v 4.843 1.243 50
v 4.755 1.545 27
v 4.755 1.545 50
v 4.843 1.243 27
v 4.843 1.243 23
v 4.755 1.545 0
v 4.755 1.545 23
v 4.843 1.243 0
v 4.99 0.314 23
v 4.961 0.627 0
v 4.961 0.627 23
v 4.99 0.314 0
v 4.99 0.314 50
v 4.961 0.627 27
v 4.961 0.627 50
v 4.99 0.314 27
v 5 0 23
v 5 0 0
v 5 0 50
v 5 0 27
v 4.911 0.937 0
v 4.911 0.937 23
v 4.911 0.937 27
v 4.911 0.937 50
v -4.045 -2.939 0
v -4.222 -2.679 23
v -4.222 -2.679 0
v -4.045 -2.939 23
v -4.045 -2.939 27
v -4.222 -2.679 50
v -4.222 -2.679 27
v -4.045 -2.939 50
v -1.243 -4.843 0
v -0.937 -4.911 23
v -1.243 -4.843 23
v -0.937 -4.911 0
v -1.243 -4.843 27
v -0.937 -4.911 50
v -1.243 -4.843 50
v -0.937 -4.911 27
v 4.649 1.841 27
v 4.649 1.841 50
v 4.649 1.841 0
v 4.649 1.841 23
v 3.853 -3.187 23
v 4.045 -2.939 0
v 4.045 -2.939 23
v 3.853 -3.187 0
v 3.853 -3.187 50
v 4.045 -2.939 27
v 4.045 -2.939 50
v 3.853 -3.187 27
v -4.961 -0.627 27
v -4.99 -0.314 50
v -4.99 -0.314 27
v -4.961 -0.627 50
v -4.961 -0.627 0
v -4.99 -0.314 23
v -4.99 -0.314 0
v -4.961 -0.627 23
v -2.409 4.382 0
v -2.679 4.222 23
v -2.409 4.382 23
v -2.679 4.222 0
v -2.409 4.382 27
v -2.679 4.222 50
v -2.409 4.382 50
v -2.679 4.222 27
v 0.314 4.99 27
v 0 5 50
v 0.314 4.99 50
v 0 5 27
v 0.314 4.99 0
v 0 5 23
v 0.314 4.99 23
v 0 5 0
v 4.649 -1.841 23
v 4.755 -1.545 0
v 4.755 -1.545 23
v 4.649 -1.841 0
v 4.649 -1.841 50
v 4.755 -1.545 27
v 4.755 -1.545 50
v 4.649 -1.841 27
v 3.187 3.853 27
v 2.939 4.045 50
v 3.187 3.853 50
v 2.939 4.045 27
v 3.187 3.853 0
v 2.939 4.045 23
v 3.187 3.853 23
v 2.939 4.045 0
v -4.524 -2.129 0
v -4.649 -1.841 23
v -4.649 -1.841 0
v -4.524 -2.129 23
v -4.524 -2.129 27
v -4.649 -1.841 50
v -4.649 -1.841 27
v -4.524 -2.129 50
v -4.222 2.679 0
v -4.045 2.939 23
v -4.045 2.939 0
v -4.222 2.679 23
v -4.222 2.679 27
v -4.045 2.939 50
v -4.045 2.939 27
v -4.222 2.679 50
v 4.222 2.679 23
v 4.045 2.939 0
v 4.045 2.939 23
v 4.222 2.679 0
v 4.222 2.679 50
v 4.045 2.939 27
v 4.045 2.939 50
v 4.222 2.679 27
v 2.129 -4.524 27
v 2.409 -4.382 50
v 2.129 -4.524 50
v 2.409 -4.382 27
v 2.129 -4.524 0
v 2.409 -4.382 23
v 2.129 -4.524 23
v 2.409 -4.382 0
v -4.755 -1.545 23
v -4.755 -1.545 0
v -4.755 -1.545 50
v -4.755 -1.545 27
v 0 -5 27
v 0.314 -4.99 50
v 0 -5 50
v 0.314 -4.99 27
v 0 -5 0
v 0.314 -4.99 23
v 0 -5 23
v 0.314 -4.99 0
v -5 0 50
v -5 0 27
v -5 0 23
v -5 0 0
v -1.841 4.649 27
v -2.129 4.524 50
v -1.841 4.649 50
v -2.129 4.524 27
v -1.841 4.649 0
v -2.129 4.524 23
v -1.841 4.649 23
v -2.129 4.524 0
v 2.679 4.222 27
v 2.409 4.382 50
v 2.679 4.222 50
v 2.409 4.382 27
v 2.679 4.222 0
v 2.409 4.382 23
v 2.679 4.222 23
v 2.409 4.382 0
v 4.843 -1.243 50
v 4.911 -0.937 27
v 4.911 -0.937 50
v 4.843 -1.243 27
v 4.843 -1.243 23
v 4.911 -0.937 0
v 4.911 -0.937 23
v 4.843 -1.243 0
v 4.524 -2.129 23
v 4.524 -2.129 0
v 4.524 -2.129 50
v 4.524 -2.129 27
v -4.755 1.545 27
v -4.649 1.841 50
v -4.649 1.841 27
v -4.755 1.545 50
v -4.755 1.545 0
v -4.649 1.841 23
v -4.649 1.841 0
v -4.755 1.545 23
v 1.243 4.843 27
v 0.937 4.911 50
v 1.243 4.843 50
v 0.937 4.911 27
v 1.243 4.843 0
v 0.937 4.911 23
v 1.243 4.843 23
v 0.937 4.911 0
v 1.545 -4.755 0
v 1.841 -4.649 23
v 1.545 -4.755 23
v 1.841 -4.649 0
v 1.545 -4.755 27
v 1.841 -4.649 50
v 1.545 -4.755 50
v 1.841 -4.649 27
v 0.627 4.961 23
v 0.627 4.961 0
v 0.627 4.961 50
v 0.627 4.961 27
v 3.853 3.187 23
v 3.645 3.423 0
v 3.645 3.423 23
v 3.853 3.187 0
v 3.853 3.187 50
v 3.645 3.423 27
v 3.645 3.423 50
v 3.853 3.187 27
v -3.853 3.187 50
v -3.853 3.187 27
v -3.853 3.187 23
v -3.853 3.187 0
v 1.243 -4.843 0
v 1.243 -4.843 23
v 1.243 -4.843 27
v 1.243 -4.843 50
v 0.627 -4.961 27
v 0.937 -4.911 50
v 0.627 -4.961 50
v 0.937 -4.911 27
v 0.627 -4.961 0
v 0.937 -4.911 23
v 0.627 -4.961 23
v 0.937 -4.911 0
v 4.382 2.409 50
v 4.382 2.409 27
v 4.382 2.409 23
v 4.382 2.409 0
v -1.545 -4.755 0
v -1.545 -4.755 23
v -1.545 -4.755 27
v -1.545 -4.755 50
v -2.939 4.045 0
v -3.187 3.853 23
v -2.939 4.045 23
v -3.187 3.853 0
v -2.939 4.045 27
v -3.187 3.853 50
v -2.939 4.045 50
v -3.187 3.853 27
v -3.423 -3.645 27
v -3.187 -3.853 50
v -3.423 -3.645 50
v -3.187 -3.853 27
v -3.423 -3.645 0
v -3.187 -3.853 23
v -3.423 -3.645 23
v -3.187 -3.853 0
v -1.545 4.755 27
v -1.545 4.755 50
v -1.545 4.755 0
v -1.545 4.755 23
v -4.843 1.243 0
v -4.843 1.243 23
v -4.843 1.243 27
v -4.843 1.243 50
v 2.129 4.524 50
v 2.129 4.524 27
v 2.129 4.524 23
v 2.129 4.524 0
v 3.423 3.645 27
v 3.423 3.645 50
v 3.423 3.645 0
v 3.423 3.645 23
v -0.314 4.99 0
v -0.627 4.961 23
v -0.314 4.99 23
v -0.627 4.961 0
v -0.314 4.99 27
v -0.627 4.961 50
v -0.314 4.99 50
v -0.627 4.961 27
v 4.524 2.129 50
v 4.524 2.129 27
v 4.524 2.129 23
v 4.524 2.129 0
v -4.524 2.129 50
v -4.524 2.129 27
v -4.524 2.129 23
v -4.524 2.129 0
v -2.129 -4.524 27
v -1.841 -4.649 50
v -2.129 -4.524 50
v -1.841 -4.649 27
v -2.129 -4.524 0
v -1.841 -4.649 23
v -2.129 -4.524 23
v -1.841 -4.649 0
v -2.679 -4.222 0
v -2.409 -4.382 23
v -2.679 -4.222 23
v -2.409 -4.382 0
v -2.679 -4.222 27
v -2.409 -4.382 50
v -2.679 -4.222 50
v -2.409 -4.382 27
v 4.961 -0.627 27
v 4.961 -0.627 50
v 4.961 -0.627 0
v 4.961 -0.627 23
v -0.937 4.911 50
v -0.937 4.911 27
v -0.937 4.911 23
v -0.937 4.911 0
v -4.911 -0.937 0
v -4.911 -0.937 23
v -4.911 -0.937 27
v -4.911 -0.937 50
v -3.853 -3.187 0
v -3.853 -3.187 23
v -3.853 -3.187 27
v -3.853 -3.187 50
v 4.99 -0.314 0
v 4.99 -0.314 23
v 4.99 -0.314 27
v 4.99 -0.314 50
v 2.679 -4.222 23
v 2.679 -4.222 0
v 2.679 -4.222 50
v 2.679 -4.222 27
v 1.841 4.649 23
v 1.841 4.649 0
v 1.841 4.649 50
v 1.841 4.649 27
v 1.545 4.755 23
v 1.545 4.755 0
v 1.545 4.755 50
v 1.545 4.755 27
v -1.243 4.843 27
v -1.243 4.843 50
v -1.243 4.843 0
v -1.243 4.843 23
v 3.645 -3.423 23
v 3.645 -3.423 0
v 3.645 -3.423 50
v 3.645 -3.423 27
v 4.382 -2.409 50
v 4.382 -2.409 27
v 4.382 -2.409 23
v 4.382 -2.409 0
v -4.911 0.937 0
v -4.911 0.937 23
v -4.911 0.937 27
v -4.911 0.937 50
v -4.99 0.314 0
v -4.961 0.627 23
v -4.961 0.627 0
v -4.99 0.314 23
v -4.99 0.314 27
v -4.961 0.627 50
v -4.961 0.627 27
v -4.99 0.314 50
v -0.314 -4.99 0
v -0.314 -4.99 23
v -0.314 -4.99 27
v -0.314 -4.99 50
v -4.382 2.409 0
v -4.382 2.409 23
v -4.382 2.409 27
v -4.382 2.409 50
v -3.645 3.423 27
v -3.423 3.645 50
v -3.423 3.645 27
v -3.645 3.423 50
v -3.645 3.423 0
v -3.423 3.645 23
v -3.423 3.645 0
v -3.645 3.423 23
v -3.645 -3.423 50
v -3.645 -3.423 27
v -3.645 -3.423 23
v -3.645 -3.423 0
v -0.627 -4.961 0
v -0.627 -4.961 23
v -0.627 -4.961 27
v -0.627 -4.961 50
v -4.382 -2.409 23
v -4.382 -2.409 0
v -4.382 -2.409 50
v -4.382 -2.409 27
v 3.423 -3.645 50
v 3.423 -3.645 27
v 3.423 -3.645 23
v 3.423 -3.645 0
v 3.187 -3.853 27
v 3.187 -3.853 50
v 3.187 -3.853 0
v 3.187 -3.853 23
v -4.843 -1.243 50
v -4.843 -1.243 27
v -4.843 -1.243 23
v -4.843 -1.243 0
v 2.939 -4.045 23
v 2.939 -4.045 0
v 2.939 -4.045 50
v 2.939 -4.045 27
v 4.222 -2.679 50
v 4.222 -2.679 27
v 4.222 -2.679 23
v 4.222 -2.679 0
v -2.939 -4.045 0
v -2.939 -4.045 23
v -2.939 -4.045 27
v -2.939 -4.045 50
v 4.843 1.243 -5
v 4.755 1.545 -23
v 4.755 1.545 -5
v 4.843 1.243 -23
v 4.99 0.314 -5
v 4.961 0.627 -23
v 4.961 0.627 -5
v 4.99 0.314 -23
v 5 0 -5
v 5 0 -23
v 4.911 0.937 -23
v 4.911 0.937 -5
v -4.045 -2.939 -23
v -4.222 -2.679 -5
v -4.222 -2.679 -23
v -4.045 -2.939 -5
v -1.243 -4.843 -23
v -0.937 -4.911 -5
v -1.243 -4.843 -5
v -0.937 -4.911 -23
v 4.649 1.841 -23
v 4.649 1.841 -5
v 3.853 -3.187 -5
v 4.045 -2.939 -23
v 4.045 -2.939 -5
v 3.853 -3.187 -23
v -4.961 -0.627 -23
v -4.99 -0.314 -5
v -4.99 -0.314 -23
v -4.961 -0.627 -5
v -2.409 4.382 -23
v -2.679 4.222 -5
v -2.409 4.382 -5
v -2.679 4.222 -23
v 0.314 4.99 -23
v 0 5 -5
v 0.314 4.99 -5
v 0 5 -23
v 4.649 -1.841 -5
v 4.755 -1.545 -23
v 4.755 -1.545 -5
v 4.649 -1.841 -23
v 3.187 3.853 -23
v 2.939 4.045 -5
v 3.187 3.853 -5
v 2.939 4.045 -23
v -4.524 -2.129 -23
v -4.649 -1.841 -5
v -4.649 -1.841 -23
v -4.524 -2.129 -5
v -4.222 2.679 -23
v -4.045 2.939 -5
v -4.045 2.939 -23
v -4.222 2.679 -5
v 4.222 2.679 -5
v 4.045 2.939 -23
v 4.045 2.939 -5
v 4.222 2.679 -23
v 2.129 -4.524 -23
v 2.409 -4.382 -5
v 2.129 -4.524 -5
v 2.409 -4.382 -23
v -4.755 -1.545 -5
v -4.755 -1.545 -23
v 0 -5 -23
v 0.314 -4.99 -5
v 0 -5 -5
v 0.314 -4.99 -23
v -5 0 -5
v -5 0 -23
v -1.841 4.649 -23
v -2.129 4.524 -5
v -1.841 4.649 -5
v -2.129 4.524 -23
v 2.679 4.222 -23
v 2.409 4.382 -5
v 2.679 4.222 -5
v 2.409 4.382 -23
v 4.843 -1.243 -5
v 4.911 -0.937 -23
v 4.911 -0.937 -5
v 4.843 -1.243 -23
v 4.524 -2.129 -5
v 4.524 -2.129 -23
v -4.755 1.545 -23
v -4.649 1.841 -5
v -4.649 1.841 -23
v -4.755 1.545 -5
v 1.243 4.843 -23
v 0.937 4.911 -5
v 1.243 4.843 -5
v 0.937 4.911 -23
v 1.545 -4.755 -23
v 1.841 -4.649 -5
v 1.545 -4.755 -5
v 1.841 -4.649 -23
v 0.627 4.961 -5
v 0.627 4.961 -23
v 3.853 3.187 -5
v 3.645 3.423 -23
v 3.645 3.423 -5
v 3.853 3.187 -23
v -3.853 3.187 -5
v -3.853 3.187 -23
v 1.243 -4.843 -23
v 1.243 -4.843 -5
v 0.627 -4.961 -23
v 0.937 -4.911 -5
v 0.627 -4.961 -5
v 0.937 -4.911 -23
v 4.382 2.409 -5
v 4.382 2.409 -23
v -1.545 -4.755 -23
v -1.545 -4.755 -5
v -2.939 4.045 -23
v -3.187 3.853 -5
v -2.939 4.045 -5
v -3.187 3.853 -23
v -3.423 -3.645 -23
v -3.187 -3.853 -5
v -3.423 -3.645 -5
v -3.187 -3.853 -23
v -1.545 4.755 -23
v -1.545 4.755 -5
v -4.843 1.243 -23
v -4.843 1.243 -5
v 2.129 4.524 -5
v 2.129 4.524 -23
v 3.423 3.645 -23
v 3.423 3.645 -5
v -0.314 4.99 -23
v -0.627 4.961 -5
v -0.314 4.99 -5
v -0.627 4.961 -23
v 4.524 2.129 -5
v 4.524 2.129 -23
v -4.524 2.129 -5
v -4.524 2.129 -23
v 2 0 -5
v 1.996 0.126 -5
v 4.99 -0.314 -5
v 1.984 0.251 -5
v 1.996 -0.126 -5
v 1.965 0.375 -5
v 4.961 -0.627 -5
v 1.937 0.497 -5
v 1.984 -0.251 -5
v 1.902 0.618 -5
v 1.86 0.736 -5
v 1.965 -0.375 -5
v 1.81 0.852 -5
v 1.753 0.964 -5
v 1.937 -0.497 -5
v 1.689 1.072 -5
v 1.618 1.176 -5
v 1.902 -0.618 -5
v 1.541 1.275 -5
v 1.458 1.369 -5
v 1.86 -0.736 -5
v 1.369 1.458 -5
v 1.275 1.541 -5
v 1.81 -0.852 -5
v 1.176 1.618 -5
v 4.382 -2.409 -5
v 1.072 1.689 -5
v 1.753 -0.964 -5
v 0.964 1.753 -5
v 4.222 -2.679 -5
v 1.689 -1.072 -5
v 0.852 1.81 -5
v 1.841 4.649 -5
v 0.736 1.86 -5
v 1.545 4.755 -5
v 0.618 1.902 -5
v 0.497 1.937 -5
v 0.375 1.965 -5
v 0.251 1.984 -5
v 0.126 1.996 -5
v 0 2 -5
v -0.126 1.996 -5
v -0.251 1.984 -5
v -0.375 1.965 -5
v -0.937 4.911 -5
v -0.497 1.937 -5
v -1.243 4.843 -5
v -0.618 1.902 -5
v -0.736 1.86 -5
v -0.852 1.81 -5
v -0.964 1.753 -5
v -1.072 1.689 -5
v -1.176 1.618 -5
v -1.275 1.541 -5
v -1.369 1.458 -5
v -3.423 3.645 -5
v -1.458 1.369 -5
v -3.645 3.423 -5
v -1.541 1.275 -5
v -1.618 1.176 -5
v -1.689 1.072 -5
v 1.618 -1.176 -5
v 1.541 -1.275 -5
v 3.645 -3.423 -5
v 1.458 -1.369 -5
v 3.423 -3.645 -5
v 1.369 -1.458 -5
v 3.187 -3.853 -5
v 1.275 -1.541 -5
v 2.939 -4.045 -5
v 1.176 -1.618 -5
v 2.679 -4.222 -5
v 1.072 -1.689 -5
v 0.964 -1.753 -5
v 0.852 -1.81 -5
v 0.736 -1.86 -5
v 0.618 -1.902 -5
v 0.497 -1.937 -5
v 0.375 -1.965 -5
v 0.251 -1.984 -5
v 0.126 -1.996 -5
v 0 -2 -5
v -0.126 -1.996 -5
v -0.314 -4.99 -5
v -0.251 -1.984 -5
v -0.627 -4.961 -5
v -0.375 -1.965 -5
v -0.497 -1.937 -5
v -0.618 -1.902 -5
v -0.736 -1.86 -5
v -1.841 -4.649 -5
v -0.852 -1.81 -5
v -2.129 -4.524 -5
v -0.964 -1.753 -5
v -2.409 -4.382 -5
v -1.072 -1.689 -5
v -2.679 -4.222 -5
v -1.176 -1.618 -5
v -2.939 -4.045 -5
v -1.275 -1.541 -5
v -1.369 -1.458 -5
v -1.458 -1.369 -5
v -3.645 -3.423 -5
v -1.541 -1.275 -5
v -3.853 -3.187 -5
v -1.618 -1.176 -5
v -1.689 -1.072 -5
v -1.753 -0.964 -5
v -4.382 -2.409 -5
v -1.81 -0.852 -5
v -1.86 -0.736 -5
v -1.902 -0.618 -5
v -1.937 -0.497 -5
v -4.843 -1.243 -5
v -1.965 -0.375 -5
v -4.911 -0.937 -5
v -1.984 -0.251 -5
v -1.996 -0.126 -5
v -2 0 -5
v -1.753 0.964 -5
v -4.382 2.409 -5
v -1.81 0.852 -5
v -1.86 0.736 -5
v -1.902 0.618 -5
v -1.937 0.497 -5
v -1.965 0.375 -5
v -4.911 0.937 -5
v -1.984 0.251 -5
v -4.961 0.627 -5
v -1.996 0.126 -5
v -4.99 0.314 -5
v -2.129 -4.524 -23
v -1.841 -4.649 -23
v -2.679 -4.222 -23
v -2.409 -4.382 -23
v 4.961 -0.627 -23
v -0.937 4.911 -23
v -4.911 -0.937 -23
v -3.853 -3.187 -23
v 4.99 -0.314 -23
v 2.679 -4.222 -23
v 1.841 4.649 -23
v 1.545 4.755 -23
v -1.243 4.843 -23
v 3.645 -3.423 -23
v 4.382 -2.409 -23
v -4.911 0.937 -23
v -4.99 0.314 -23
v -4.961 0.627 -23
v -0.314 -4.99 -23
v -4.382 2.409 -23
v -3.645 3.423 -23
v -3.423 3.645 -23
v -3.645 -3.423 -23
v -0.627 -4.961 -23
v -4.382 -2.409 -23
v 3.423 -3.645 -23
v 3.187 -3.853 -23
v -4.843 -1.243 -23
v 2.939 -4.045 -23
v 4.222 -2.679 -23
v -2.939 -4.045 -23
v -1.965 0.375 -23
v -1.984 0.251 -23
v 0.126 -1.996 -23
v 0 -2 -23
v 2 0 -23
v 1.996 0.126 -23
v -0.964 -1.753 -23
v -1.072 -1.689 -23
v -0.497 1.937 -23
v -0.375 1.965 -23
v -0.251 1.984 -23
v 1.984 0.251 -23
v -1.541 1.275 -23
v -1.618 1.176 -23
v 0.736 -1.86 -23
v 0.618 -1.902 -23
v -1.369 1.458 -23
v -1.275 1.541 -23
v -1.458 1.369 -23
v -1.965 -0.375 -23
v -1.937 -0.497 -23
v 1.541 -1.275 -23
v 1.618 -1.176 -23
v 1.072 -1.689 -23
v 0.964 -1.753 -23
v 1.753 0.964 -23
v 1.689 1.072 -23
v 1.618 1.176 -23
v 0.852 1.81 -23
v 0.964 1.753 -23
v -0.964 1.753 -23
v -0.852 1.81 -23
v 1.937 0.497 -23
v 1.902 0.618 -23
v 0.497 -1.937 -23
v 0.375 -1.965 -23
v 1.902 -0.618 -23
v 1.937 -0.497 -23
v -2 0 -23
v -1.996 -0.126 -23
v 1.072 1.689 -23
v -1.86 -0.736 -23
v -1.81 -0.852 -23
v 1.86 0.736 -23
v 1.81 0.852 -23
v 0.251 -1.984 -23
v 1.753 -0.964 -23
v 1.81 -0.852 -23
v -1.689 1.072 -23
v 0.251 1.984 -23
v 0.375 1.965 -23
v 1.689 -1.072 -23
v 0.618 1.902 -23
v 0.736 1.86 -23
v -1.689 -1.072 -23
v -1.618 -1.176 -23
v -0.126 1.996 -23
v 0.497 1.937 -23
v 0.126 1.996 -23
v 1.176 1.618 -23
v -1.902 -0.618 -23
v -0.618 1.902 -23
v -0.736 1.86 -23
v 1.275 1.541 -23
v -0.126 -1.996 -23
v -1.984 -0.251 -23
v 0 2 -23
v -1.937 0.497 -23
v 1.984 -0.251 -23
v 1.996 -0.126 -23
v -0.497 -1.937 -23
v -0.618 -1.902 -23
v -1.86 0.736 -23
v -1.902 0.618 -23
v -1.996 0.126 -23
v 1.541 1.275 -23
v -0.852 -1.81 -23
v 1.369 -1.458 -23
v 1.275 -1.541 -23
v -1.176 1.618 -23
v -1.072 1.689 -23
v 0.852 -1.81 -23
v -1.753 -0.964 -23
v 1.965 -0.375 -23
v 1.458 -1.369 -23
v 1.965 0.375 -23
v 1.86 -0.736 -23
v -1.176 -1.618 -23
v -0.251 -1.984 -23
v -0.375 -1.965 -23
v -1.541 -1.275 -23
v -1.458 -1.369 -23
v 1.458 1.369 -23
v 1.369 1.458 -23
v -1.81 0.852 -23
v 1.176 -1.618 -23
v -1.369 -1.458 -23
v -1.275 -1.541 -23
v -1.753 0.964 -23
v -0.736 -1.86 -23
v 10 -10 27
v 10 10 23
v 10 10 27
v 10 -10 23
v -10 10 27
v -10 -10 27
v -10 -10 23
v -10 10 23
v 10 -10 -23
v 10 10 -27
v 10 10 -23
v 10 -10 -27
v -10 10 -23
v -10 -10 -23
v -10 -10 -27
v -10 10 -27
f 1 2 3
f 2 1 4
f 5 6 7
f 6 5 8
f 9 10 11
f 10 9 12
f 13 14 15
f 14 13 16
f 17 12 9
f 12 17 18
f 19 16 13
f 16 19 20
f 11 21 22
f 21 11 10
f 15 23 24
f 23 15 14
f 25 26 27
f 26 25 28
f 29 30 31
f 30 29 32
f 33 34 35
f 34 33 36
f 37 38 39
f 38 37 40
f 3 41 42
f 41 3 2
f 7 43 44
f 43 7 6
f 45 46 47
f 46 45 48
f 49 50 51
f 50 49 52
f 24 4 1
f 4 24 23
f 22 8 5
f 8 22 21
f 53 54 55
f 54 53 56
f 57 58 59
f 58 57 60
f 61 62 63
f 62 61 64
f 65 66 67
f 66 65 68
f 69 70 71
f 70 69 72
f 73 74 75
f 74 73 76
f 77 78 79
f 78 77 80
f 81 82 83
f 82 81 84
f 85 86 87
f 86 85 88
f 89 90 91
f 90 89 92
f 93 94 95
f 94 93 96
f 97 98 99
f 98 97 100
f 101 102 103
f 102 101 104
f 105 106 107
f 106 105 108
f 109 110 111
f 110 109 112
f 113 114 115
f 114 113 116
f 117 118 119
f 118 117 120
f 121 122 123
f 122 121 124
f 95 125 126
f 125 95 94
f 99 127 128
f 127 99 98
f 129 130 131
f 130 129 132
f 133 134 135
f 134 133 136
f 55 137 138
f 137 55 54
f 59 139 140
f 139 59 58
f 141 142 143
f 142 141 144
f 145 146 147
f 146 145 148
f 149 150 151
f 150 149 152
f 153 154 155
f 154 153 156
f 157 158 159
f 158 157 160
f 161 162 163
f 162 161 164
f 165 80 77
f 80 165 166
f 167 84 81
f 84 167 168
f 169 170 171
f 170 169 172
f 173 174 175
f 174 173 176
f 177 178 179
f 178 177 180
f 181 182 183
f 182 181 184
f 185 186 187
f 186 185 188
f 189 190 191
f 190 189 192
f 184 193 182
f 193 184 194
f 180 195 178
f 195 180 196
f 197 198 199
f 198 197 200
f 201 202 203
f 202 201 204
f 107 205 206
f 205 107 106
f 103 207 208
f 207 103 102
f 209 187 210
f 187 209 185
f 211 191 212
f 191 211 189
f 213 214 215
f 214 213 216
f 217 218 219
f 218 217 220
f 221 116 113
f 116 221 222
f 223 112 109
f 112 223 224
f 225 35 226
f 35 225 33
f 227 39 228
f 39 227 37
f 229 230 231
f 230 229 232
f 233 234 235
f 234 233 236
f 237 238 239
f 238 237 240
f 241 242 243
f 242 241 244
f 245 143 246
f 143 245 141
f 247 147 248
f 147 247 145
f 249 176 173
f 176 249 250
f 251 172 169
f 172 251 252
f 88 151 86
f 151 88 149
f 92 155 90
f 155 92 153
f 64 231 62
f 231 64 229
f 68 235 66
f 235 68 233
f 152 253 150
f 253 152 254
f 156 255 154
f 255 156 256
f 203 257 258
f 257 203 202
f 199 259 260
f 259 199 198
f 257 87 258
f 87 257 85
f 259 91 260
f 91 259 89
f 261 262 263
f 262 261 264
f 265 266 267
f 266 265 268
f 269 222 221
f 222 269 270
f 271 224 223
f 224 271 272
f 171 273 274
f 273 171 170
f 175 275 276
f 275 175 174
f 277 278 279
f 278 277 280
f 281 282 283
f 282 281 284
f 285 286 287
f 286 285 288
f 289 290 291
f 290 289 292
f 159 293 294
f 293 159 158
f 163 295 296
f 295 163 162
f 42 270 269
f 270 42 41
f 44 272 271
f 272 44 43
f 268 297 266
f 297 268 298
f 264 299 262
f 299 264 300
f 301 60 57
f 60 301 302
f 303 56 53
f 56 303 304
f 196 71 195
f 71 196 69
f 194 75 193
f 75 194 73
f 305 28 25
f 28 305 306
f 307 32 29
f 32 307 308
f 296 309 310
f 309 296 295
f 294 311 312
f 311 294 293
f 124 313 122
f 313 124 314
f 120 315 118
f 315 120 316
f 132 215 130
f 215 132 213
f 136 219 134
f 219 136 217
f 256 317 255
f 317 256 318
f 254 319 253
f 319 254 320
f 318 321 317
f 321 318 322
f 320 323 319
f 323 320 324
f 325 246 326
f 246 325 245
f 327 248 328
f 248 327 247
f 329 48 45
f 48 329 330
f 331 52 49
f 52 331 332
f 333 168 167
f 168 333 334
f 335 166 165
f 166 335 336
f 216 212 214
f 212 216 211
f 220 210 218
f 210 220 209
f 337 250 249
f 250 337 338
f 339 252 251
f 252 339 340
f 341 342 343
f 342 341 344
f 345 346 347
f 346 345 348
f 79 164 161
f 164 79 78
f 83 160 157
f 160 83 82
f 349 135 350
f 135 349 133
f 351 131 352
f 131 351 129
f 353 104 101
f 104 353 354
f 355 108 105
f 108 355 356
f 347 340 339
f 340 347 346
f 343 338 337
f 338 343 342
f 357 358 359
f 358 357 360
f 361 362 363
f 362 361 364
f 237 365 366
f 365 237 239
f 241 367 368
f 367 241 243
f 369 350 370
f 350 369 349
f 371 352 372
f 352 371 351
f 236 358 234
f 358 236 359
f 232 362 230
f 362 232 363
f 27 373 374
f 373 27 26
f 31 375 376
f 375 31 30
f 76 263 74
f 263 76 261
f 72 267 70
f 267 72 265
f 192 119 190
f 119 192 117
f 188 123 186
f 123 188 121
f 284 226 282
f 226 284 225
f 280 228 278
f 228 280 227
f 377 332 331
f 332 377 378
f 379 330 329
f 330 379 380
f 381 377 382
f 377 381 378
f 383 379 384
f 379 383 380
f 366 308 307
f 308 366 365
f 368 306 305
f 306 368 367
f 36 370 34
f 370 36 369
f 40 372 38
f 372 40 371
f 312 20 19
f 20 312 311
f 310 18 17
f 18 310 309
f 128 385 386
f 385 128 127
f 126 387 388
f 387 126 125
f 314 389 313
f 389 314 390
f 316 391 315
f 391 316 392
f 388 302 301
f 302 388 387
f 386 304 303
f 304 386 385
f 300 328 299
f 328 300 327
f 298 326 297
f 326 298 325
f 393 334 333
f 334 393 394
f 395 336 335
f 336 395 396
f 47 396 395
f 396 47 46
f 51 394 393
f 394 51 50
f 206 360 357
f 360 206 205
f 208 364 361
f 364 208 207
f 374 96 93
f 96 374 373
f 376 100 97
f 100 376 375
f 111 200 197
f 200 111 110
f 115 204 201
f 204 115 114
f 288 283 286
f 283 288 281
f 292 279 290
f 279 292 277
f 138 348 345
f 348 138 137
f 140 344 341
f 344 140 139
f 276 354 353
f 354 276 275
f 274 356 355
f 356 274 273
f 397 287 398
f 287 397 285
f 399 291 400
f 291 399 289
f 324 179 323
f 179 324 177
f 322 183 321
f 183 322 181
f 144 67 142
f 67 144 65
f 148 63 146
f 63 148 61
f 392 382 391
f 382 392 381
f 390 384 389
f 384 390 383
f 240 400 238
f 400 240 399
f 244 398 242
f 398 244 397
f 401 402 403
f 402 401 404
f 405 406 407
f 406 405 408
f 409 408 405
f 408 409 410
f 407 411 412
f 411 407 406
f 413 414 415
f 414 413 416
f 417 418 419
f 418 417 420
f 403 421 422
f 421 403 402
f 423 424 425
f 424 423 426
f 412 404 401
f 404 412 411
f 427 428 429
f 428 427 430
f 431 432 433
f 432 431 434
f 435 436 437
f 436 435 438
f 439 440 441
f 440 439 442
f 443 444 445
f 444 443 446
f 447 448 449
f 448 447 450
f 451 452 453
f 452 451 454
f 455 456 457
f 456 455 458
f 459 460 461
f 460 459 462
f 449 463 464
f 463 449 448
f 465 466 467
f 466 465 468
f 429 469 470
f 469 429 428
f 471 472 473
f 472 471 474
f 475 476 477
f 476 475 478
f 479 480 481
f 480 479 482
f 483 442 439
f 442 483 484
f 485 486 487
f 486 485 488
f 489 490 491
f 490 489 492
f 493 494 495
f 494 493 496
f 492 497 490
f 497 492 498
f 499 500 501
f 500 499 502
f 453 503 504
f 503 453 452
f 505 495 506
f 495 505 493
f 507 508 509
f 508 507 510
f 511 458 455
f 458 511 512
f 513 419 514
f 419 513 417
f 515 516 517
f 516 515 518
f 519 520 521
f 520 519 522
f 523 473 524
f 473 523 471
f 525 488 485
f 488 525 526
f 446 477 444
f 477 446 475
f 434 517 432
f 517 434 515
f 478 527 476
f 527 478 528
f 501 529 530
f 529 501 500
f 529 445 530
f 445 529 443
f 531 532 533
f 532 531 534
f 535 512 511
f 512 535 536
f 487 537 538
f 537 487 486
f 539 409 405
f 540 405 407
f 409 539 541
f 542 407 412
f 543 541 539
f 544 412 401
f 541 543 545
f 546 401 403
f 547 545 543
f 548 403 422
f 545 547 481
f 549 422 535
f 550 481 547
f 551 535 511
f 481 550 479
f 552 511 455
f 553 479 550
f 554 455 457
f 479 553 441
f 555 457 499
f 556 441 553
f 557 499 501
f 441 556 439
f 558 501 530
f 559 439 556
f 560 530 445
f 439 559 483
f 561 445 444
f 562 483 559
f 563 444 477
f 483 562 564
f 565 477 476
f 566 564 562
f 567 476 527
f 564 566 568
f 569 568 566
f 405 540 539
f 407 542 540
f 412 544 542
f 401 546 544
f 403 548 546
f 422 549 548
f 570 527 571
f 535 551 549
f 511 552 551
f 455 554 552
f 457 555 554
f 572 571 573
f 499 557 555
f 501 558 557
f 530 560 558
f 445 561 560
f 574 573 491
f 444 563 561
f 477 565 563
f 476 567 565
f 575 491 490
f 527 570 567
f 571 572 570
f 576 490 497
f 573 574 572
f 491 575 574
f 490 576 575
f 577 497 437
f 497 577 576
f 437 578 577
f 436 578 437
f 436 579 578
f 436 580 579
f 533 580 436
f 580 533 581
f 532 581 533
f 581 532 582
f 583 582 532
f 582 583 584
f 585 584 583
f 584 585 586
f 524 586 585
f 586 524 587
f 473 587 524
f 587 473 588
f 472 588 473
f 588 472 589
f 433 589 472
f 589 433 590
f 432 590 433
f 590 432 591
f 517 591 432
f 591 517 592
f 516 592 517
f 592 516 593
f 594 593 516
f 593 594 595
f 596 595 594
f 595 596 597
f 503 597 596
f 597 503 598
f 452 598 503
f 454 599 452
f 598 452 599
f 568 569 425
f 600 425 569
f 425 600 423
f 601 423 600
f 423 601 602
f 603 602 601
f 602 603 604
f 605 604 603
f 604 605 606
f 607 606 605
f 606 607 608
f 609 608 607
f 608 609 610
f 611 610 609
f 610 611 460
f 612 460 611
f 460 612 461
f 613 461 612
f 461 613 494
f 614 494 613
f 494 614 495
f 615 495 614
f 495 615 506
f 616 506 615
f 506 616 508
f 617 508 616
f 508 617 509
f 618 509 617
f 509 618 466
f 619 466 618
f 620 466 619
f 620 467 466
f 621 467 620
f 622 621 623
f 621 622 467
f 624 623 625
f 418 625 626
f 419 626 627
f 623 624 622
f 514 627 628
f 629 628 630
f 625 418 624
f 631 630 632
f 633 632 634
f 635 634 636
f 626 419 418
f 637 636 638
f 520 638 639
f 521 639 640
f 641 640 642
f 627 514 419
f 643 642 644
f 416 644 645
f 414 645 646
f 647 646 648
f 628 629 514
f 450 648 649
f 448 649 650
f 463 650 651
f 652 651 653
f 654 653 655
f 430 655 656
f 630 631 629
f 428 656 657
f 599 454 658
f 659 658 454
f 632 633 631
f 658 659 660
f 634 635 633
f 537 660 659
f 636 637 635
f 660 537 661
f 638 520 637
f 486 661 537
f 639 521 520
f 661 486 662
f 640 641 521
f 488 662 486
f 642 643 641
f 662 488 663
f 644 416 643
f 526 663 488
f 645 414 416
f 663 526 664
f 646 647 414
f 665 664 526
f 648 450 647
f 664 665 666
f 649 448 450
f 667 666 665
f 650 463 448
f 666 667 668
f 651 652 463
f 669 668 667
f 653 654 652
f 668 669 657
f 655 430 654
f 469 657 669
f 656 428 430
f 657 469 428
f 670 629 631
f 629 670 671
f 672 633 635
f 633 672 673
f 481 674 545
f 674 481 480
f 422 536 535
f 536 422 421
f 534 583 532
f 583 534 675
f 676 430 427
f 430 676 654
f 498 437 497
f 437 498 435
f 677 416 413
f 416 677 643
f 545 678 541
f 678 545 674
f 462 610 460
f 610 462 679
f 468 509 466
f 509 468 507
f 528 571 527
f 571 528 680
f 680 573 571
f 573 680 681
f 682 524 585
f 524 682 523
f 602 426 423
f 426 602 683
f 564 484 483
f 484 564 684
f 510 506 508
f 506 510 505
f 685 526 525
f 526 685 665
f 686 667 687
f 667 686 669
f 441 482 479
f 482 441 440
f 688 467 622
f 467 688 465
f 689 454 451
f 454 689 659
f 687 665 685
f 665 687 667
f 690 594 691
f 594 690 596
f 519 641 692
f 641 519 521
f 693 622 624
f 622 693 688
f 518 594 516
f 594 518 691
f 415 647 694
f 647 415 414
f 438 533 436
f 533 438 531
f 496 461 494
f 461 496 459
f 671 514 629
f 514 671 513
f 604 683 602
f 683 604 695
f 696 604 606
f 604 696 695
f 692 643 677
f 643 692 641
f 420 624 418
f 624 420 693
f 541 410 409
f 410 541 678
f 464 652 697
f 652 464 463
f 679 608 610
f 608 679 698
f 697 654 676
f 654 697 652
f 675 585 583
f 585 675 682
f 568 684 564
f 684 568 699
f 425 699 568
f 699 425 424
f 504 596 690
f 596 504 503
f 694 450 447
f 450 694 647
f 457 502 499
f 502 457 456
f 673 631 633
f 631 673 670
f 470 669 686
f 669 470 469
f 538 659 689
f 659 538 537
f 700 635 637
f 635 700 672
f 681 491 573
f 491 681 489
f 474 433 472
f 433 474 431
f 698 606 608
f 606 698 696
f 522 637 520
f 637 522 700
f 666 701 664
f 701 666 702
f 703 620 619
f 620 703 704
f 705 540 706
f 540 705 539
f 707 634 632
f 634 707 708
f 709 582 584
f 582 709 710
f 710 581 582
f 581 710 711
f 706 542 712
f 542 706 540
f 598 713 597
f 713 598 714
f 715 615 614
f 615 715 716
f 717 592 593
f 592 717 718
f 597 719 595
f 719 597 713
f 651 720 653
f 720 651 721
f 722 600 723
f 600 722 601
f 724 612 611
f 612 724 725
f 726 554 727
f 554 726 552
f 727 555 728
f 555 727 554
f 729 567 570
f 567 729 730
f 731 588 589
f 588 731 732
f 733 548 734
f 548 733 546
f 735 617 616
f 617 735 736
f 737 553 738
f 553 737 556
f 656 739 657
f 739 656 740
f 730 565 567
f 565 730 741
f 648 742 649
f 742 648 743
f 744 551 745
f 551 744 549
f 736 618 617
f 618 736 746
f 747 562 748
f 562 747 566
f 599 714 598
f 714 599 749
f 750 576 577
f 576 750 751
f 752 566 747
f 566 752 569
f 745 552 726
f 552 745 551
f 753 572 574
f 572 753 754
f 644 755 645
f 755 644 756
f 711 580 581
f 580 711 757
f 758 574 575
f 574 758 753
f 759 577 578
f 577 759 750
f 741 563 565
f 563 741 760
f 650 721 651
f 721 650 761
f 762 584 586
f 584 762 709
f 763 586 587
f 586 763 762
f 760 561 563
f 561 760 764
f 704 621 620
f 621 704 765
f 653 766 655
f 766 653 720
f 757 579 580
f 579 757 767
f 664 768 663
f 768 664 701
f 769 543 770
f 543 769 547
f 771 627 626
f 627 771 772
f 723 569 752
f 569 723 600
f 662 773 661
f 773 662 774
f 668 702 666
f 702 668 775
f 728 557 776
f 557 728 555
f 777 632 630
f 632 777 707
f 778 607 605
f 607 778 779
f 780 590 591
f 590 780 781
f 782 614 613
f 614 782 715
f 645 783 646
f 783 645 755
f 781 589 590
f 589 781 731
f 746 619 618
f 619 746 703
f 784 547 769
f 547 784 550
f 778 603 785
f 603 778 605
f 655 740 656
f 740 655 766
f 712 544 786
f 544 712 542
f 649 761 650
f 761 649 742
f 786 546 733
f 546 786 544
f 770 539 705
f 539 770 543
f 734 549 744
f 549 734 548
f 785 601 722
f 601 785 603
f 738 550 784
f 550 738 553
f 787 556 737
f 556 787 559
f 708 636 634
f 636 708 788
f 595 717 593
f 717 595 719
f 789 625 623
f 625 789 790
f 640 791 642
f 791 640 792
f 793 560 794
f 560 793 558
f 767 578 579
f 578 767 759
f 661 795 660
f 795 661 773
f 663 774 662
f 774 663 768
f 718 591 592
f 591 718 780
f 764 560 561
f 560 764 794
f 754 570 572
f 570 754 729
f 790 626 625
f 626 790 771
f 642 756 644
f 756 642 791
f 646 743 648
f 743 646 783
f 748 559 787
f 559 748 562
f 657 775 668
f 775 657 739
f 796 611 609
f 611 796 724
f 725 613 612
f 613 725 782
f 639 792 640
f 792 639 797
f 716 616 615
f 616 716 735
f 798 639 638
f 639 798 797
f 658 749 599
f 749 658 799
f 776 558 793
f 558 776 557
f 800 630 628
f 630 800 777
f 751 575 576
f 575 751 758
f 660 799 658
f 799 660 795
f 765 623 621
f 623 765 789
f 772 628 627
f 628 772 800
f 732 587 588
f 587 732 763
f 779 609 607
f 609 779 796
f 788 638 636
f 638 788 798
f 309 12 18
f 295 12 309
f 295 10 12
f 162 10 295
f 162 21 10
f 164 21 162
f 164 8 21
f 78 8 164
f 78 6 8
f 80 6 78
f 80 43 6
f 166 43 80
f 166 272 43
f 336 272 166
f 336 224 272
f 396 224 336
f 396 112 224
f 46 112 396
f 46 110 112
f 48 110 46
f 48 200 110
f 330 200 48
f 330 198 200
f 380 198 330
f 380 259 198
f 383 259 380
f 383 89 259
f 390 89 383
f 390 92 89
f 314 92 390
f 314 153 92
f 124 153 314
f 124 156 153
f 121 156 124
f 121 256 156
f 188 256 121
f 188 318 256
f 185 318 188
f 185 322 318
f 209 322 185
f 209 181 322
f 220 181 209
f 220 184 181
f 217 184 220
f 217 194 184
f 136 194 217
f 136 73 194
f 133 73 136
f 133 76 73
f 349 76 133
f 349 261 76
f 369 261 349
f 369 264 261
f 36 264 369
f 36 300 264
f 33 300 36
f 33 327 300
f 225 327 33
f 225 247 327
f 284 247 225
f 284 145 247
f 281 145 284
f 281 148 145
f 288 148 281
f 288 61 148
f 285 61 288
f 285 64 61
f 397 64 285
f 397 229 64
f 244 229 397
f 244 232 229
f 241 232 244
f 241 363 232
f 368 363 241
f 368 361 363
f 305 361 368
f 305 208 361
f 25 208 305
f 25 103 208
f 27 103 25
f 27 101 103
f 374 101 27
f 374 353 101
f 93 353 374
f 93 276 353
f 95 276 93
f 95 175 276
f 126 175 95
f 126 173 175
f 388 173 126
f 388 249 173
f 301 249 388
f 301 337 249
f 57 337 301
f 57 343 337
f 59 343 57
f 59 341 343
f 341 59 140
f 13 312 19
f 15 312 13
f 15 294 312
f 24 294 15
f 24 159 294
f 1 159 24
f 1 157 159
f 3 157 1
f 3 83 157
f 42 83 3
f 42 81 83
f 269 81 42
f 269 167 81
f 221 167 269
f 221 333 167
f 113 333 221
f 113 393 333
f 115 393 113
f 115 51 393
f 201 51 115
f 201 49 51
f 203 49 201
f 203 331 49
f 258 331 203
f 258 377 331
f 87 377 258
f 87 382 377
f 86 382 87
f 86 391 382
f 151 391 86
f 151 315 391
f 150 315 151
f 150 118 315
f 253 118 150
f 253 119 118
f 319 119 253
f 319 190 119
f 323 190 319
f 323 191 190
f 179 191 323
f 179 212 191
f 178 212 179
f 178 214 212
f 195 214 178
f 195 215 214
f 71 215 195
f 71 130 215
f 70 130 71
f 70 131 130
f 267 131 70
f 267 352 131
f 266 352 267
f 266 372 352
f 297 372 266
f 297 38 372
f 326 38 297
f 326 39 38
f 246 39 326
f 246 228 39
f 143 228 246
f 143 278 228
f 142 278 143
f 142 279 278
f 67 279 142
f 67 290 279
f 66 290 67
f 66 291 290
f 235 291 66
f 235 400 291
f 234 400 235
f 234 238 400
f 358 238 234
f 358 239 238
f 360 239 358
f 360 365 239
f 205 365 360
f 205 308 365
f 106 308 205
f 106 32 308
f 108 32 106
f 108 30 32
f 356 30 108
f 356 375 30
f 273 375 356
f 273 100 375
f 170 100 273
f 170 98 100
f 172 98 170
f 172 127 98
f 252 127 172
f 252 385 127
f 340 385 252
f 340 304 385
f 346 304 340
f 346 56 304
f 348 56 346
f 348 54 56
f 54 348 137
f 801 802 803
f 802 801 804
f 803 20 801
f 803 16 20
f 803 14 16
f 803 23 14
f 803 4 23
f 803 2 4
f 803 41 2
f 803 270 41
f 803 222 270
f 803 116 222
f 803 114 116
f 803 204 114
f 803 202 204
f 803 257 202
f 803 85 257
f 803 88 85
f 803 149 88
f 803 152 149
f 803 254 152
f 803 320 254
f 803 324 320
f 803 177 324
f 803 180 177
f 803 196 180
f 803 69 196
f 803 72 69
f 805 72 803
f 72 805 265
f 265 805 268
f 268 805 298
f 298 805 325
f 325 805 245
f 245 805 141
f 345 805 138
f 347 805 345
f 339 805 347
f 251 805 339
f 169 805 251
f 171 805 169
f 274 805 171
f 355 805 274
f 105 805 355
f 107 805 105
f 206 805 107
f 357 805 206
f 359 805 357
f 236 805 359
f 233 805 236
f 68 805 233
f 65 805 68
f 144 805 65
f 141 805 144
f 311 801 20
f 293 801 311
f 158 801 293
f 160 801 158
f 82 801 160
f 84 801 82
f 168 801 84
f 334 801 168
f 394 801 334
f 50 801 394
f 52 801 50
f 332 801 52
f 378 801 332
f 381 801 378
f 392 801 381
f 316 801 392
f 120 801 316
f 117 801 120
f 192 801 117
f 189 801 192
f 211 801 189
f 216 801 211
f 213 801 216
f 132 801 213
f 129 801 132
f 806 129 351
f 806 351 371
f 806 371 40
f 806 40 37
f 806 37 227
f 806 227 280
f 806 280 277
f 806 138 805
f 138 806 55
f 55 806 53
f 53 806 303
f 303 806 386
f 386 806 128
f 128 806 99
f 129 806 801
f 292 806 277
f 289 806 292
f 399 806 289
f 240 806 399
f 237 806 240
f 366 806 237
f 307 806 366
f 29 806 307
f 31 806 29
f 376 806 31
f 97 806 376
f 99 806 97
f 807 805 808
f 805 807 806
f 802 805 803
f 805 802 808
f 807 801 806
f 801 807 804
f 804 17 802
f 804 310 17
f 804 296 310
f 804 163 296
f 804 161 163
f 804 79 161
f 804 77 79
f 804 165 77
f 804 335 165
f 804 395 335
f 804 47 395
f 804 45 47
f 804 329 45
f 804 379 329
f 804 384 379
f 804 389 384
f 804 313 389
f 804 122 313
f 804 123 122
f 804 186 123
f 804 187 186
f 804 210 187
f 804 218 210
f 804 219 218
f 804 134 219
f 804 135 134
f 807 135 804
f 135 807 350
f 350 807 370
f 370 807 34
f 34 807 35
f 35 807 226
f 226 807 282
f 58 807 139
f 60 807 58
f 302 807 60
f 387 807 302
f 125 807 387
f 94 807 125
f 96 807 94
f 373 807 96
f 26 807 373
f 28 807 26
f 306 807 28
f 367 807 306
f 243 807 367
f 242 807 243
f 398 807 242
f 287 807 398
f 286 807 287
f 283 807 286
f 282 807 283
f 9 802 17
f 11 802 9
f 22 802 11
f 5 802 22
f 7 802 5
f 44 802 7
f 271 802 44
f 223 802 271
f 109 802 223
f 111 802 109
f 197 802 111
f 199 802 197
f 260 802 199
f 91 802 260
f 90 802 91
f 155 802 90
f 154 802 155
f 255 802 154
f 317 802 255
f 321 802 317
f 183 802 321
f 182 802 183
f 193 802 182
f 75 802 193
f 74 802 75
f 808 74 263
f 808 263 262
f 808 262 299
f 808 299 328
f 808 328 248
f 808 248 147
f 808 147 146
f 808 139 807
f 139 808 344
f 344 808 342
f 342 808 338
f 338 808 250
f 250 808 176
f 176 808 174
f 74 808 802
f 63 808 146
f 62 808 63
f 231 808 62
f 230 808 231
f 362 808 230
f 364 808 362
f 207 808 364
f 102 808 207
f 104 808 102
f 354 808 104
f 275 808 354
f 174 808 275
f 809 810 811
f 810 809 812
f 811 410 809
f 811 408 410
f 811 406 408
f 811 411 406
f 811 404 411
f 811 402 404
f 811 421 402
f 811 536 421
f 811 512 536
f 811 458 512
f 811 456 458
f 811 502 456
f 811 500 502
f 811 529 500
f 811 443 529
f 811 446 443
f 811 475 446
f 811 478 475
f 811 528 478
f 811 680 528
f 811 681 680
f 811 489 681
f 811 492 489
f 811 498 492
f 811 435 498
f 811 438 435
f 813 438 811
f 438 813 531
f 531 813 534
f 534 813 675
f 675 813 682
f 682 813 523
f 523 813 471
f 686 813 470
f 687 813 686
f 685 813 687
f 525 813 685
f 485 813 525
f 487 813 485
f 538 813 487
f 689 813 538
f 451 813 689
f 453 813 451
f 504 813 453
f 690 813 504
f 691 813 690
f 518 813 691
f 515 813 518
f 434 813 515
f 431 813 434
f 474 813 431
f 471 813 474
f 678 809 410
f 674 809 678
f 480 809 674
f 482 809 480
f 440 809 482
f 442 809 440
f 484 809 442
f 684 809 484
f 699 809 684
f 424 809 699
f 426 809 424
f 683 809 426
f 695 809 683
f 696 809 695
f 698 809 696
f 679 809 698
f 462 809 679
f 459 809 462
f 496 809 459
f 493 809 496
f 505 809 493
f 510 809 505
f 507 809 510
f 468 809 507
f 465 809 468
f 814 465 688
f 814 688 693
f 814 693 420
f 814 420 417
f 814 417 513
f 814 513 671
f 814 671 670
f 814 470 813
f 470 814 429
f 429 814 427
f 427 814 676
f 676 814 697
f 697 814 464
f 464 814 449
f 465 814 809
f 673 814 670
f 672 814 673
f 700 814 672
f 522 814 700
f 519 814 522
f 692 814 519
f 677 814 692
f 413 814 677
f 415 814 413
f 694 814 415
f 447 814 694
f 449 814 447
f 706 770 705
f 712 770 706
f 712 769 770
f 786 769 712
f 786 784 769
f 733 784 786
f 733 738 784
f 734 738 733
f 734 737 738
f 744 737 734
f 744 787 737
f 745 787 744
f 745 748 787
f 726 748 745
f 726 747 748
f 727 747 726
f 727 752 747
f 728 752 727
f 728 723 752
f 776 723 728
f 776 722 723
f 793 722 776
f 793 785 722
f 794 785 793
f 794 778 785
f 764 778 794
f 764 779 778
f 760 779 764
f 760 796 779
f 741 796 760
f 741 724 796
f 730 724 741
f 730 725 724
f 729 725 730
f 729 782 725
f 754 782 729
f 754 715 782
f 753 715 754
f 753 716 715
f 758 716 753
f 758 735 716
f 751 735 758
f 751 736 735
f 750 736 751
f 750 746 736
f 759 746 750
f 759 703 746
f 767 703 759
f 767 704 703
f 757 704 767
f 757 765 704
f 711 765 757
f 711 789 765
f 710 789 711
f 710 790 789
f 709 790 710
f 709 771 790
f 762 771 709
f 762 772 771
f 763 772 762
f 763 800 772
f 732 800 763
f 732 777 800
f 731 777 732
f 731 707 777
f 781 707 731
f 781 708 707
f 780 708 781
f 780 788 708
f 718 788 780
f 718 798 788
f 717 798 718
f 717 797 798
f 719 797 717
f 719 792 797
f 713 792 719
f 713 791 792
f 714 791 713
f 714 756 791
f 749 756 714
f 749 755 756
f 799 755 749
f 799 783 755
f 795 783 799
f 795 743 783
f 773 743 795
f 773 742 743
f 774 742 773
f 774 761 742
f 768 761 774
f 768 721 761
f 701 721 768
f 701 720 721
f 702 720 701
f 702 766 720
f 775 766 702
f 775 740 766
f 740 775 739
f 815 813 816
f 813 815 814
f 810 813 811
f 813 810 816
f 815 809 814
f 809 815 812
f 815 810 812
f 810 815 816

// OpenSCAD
// Parameters for the components
module central_shaft() {
    cylinder(h = 50, r = 5, $fn = 100); // Central shaft: height 50, radius 5
}

module input_shaft() {
    difference() {
        cylinder(h = 20, r = 5, $fn = 100); // Input shaft: height 20, radius 5
        translate([0, 0, -1]) cylinder(h = 22, r = 2, $fn = 100); // Hollow center: height 22, radius 2
    }
}

module output_shaft() {
    difference() {
        cylinder(h = 20, r = 5, $fn = 100); // Output shaft: height 20, radius 5
        translate([0, 0, -1]) cylinder(h = 22, r = 2, $fn = 100); // Hollow center: height 22, radius 2
    }
}

module flange_plate() {
    cube([20, 20, 2], center = true); // Flange plate: 20x20x2
}

// Assembly
module flexible_coupling() {
    // Central shaft
    central_shaft();

    // Input shaft
    translate([0, 0, 25]) input_shaft();

    // Output shaft
    translate([0, 0, -25]) output_shaft();

    // Flange plates
    translate([0, 0, 26]) flange_plate(); // Layer 1
    translate([0, 0, 24]) flange_plate(); // Layer 2
    translate([0, 0, -24]) flange_plate(); // Layer 3
    translate([0, 0, -26]) flange_plate(); // Layer 4
}

// Render the model
flexible_coupling();
